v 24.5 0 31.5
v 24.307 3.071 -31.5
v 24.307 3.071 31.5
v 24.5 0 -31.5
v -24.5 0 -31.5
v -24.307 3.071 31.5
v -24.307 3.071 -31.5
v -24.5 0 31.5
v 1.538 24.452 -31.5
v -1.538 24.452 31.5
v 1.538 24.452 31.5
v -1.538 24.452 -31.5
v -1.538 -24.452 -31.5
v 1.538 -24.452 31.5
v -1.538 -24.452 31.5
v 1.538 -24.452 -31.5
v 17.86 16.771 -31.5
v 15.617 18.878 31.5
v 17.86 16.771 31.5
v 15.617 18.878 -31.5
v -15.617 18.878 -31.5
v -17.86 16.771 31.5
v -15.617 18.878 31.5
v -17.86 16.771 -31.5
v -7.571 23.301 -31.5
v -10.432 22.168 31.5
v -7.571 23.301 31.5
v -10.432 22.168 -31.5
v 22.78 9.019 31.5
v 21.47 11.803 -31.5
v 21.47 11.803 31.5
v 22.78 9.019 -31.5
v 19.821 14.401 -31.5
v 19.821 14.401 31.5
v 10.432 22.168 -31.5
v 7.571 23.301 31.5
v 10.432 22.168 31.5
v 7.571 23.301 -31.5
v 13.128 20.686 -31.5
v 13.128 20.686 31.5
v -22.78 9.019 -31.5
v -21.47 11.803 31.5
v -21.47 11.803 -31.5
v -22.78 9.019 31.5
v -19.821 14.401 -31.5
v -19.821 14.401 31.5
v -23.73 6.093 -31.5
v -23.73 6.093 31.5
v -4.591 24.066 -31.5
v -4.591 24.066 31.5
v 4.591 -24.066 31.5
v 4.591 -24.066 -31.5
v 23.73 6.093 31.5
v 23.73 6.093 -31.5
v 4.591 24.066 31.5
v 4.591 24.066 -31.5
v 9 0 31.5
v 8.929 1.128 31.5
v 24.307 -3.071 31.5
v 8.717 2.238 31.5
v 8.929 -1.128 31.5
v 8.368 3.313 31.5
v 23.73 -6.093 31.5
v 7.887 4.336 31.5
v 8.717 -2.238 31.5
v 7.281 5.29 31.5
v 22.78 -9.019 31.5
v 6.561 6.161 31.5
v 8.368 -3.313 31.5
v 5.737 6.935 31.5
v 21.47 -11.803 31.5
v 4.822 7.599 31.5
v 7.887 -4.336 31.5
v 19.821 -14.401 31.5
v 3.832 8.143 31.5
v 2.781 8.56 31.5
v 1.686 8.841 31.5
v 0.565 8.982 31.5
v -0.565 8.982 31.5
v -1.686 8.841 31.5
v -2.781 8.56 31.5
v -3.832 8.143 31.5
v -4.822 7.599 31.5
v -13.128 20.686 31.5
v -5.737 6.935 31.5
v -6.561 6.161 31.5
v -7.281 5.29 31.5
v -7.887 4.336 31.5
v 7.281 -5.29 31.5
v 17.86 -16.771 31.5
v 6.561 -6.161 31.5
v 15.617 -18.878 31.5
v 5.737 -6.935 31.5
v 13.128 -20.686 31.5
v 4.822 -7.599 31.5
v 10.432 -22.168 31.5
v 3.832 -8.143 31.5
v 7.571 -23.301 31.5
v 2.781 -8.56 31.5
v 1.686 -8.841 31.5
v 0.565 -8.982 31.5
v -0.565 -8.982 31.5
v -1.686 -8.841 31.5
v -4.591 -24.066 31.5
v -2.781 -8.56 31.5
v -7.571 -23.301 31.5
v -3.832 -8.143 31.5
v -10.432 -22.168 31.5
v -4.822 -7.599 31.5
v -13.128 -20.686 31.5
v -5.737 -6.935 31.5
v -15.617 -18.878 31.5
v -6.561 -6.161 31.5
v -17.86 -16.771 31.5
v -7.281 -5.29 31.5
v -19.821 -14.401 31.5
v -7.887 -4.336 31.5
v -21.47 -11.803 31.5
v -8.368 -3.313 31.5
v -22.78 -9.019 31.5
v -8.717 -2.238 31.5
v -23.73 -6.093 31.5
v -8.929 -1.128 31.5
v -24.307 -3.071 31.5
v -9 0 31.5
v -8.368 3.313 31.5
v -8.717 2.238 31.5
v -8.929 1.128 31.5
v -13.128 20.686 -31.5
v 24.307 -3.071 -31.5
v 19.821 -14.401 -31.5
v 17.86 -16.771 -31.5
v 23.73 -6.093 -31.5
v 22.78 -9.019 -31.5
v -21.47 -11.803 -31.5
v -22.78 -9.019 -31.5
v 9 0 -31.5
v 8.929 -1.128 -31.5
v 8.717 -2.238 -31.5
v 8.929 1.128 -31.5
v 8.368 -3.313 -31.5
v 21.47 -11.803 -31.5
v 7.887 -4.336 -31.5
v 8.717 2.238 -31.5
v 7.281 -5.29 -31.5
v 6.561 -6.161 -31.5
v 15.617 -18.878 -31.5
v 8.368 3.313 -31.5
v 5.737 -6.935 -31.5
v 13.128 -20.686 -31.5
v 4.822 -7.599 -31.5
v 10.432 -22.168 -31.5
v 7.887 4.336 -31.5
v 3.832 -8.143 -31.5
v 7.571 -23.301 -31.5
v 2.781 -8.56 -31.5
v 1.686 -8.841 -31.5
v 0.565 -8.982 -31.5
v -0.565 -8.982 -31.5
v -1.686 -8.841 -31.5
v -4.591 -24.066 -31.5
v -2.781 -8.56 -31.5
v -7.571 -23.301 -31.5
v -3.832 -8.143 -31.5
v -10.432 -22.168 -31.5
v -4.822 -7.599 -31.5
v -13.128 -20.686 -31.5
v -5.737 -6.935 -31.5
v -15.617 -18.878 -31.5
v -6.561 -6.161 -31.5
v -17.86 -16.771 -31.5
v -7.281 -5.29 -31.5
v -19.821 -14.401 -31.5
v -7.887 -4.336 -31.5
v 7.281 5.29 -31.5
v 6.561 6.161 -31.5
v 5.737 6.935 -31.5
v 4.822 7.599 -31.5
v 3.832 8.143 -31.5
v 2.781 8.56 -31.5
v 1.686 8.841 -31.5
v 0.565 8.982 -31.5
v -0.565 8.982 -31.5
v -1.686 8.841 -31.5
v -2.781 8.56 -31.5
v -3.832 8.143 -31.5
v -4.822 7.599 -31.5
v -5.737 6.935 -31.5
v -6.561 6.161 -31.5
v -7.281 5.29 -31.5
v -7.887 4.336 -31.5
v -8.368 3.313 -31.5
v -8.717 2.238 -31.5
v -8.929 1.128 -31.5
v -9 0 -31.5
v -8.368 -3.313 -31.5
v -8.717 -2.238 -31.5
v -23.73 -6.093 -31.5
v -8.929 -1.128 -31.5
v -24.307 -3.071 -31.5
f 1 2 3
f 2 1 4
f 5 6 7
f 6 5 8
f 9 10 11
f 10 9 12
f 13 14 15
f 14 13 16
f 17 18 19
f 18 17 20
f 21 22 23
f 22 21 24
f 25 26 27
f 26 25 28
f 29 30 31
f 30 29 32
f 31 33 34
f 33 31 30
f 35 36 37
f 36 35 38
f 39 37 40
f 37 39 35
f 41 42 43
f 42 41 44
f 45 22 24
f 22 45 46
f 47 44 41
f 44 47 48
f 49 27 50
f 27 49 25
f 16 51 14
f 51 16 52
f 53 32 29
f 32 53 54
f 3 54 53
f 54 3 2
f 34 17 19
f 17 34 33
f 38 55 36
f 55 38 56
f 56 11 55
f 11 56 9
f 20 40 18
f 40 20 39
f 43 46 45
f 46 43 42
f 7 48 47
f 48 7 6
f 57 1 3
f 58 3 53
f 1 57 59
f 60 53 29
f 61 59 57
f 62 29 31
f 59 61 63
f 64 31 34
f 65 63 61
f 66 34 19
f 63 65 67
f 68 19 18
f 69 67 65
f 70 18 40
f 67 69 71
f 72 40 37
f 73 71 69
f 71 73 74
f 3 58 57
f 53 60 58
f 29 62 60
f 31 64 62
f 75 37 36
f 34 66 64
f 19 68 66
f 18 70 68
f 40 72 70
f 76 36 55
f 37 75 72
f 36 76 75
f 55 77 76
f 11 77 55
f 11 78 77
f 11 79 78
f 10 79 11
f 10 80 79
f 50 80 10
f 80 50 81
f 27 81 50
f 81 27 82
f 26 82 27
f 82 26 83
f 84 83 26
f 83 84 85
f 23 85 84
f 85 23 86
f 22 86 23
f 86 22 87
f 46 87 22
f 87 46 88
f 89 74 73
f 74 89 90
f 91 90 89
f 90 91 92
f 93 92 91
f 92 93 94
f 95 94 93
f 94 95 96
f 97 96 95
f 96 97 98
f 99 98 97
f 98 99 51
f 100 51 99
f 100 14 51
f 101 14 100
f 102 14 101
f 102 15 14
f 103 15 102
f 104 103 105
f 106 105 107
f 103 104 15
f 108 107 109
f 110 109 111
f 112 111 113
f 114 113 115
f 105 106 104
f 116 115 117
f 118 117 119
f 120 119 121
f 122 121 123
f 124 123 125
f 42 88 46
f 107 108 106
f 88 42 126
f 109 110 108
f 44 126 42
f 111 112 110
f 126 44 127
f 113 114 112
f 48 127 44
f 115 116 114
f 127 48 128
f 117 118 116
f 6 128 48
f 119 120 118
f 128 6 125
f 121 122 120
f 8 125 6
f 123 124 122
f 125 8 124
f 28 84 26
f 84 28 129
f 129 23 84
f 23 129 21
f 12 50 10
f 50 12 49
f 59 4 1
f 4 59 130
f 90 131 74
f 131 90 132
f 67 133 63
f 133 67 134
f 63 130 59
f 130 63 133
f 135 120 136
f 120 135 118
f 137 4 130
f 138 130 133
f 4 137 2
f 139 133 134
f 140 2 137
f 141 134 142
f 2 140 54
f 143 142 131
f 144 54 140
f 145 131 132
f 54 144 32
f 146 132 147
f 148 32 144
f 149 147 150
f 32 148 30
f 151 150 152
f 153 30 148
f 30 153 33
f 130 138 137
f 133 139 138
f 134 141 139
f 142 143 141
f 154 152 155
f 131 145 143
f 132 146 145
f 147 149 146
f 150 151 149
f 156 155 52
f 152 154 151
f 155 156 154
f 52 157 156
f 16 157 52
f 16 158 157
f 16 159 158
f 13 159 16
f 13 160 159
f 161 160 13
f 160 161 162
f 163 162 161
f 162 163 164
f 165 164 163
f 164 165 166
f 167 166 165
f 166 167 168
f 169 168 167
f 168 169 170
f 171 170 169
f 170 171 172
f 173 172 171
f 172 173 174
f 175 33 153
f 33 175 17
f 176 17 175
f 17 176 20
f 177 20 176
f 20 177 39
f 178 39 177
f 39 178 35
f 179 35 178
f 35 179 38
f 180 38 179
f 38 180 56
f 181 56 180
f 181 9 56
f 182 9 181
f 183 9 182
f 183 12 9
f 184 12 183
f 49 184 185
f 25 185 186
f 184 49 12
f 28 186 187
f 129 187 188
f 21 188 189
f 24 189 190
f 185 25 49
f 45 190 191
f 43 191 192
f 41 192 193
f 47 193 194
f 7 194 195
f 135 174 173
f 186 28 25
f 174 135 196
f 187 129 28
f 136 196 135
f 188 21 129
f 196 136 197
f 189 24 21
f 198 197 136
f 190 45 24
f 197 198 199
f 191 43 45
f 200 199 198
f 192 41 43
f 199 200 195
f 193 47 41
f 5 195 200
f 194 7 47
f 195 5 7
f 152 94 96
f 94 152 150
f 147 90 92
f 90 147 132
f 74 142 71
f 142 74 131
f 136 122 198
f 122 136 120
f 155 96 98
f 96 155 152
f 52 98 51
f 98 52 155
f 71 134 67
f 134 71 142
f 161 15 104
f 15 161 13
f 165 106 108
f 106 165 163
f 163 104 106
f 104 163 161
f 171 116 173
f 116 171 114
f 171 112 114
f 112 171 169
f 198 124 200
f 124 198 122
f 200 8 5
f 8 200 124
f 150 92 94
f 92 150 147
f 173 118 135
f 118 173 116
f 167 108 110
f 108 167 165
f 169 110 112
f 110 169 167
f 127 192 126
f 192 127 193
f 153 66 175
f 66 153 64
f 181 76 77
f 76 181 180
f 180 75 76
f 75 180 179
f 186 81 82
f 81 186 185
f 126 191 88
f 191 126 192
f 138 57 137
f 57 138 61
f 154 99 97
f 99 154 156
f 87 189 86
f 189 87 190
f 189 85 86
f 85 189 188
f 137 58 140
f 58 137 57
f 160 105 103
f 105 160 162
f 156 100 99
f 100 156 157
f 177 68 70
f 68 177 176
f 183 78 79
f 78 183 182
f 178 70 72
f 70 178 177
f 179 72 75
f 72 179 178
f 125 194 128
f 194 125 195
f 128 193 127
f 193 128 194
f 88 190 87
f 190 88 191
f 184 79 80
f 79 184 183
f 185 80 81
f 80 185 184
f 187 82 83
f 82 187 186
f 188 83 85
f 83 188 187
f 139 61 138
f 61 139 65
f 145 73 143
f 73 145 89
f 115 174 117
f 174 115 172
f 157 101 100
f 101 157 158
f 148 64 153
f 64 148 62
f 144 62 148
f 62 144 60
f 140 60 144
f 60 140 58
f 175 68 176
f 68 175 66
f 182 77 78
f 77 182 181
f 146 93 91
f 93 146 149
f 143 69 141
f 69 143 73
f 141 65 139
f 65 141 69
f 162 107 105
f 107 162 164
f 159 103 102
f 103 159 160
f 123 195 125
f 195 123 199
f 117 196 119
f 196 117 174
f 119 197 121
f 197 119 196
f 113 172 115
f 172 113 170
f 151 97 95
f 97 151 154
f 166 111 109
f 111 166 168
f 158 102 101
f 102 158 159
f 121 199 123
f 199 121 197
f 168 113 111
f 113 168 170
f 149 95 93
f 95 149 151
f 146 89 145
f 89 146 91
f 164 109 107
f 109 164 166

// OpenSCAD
$fn = 50;


difference() {
	union() {
		translate(v = [0, 0, -31.5000000000]) {
			cylinder(h = 63, r = 24.5000000000);
		}
	}
	union() {
		translate(v = [0, 0, -100.0000000000]) {
			cylinder(h = 200, r = 9);
		}
	}
}
